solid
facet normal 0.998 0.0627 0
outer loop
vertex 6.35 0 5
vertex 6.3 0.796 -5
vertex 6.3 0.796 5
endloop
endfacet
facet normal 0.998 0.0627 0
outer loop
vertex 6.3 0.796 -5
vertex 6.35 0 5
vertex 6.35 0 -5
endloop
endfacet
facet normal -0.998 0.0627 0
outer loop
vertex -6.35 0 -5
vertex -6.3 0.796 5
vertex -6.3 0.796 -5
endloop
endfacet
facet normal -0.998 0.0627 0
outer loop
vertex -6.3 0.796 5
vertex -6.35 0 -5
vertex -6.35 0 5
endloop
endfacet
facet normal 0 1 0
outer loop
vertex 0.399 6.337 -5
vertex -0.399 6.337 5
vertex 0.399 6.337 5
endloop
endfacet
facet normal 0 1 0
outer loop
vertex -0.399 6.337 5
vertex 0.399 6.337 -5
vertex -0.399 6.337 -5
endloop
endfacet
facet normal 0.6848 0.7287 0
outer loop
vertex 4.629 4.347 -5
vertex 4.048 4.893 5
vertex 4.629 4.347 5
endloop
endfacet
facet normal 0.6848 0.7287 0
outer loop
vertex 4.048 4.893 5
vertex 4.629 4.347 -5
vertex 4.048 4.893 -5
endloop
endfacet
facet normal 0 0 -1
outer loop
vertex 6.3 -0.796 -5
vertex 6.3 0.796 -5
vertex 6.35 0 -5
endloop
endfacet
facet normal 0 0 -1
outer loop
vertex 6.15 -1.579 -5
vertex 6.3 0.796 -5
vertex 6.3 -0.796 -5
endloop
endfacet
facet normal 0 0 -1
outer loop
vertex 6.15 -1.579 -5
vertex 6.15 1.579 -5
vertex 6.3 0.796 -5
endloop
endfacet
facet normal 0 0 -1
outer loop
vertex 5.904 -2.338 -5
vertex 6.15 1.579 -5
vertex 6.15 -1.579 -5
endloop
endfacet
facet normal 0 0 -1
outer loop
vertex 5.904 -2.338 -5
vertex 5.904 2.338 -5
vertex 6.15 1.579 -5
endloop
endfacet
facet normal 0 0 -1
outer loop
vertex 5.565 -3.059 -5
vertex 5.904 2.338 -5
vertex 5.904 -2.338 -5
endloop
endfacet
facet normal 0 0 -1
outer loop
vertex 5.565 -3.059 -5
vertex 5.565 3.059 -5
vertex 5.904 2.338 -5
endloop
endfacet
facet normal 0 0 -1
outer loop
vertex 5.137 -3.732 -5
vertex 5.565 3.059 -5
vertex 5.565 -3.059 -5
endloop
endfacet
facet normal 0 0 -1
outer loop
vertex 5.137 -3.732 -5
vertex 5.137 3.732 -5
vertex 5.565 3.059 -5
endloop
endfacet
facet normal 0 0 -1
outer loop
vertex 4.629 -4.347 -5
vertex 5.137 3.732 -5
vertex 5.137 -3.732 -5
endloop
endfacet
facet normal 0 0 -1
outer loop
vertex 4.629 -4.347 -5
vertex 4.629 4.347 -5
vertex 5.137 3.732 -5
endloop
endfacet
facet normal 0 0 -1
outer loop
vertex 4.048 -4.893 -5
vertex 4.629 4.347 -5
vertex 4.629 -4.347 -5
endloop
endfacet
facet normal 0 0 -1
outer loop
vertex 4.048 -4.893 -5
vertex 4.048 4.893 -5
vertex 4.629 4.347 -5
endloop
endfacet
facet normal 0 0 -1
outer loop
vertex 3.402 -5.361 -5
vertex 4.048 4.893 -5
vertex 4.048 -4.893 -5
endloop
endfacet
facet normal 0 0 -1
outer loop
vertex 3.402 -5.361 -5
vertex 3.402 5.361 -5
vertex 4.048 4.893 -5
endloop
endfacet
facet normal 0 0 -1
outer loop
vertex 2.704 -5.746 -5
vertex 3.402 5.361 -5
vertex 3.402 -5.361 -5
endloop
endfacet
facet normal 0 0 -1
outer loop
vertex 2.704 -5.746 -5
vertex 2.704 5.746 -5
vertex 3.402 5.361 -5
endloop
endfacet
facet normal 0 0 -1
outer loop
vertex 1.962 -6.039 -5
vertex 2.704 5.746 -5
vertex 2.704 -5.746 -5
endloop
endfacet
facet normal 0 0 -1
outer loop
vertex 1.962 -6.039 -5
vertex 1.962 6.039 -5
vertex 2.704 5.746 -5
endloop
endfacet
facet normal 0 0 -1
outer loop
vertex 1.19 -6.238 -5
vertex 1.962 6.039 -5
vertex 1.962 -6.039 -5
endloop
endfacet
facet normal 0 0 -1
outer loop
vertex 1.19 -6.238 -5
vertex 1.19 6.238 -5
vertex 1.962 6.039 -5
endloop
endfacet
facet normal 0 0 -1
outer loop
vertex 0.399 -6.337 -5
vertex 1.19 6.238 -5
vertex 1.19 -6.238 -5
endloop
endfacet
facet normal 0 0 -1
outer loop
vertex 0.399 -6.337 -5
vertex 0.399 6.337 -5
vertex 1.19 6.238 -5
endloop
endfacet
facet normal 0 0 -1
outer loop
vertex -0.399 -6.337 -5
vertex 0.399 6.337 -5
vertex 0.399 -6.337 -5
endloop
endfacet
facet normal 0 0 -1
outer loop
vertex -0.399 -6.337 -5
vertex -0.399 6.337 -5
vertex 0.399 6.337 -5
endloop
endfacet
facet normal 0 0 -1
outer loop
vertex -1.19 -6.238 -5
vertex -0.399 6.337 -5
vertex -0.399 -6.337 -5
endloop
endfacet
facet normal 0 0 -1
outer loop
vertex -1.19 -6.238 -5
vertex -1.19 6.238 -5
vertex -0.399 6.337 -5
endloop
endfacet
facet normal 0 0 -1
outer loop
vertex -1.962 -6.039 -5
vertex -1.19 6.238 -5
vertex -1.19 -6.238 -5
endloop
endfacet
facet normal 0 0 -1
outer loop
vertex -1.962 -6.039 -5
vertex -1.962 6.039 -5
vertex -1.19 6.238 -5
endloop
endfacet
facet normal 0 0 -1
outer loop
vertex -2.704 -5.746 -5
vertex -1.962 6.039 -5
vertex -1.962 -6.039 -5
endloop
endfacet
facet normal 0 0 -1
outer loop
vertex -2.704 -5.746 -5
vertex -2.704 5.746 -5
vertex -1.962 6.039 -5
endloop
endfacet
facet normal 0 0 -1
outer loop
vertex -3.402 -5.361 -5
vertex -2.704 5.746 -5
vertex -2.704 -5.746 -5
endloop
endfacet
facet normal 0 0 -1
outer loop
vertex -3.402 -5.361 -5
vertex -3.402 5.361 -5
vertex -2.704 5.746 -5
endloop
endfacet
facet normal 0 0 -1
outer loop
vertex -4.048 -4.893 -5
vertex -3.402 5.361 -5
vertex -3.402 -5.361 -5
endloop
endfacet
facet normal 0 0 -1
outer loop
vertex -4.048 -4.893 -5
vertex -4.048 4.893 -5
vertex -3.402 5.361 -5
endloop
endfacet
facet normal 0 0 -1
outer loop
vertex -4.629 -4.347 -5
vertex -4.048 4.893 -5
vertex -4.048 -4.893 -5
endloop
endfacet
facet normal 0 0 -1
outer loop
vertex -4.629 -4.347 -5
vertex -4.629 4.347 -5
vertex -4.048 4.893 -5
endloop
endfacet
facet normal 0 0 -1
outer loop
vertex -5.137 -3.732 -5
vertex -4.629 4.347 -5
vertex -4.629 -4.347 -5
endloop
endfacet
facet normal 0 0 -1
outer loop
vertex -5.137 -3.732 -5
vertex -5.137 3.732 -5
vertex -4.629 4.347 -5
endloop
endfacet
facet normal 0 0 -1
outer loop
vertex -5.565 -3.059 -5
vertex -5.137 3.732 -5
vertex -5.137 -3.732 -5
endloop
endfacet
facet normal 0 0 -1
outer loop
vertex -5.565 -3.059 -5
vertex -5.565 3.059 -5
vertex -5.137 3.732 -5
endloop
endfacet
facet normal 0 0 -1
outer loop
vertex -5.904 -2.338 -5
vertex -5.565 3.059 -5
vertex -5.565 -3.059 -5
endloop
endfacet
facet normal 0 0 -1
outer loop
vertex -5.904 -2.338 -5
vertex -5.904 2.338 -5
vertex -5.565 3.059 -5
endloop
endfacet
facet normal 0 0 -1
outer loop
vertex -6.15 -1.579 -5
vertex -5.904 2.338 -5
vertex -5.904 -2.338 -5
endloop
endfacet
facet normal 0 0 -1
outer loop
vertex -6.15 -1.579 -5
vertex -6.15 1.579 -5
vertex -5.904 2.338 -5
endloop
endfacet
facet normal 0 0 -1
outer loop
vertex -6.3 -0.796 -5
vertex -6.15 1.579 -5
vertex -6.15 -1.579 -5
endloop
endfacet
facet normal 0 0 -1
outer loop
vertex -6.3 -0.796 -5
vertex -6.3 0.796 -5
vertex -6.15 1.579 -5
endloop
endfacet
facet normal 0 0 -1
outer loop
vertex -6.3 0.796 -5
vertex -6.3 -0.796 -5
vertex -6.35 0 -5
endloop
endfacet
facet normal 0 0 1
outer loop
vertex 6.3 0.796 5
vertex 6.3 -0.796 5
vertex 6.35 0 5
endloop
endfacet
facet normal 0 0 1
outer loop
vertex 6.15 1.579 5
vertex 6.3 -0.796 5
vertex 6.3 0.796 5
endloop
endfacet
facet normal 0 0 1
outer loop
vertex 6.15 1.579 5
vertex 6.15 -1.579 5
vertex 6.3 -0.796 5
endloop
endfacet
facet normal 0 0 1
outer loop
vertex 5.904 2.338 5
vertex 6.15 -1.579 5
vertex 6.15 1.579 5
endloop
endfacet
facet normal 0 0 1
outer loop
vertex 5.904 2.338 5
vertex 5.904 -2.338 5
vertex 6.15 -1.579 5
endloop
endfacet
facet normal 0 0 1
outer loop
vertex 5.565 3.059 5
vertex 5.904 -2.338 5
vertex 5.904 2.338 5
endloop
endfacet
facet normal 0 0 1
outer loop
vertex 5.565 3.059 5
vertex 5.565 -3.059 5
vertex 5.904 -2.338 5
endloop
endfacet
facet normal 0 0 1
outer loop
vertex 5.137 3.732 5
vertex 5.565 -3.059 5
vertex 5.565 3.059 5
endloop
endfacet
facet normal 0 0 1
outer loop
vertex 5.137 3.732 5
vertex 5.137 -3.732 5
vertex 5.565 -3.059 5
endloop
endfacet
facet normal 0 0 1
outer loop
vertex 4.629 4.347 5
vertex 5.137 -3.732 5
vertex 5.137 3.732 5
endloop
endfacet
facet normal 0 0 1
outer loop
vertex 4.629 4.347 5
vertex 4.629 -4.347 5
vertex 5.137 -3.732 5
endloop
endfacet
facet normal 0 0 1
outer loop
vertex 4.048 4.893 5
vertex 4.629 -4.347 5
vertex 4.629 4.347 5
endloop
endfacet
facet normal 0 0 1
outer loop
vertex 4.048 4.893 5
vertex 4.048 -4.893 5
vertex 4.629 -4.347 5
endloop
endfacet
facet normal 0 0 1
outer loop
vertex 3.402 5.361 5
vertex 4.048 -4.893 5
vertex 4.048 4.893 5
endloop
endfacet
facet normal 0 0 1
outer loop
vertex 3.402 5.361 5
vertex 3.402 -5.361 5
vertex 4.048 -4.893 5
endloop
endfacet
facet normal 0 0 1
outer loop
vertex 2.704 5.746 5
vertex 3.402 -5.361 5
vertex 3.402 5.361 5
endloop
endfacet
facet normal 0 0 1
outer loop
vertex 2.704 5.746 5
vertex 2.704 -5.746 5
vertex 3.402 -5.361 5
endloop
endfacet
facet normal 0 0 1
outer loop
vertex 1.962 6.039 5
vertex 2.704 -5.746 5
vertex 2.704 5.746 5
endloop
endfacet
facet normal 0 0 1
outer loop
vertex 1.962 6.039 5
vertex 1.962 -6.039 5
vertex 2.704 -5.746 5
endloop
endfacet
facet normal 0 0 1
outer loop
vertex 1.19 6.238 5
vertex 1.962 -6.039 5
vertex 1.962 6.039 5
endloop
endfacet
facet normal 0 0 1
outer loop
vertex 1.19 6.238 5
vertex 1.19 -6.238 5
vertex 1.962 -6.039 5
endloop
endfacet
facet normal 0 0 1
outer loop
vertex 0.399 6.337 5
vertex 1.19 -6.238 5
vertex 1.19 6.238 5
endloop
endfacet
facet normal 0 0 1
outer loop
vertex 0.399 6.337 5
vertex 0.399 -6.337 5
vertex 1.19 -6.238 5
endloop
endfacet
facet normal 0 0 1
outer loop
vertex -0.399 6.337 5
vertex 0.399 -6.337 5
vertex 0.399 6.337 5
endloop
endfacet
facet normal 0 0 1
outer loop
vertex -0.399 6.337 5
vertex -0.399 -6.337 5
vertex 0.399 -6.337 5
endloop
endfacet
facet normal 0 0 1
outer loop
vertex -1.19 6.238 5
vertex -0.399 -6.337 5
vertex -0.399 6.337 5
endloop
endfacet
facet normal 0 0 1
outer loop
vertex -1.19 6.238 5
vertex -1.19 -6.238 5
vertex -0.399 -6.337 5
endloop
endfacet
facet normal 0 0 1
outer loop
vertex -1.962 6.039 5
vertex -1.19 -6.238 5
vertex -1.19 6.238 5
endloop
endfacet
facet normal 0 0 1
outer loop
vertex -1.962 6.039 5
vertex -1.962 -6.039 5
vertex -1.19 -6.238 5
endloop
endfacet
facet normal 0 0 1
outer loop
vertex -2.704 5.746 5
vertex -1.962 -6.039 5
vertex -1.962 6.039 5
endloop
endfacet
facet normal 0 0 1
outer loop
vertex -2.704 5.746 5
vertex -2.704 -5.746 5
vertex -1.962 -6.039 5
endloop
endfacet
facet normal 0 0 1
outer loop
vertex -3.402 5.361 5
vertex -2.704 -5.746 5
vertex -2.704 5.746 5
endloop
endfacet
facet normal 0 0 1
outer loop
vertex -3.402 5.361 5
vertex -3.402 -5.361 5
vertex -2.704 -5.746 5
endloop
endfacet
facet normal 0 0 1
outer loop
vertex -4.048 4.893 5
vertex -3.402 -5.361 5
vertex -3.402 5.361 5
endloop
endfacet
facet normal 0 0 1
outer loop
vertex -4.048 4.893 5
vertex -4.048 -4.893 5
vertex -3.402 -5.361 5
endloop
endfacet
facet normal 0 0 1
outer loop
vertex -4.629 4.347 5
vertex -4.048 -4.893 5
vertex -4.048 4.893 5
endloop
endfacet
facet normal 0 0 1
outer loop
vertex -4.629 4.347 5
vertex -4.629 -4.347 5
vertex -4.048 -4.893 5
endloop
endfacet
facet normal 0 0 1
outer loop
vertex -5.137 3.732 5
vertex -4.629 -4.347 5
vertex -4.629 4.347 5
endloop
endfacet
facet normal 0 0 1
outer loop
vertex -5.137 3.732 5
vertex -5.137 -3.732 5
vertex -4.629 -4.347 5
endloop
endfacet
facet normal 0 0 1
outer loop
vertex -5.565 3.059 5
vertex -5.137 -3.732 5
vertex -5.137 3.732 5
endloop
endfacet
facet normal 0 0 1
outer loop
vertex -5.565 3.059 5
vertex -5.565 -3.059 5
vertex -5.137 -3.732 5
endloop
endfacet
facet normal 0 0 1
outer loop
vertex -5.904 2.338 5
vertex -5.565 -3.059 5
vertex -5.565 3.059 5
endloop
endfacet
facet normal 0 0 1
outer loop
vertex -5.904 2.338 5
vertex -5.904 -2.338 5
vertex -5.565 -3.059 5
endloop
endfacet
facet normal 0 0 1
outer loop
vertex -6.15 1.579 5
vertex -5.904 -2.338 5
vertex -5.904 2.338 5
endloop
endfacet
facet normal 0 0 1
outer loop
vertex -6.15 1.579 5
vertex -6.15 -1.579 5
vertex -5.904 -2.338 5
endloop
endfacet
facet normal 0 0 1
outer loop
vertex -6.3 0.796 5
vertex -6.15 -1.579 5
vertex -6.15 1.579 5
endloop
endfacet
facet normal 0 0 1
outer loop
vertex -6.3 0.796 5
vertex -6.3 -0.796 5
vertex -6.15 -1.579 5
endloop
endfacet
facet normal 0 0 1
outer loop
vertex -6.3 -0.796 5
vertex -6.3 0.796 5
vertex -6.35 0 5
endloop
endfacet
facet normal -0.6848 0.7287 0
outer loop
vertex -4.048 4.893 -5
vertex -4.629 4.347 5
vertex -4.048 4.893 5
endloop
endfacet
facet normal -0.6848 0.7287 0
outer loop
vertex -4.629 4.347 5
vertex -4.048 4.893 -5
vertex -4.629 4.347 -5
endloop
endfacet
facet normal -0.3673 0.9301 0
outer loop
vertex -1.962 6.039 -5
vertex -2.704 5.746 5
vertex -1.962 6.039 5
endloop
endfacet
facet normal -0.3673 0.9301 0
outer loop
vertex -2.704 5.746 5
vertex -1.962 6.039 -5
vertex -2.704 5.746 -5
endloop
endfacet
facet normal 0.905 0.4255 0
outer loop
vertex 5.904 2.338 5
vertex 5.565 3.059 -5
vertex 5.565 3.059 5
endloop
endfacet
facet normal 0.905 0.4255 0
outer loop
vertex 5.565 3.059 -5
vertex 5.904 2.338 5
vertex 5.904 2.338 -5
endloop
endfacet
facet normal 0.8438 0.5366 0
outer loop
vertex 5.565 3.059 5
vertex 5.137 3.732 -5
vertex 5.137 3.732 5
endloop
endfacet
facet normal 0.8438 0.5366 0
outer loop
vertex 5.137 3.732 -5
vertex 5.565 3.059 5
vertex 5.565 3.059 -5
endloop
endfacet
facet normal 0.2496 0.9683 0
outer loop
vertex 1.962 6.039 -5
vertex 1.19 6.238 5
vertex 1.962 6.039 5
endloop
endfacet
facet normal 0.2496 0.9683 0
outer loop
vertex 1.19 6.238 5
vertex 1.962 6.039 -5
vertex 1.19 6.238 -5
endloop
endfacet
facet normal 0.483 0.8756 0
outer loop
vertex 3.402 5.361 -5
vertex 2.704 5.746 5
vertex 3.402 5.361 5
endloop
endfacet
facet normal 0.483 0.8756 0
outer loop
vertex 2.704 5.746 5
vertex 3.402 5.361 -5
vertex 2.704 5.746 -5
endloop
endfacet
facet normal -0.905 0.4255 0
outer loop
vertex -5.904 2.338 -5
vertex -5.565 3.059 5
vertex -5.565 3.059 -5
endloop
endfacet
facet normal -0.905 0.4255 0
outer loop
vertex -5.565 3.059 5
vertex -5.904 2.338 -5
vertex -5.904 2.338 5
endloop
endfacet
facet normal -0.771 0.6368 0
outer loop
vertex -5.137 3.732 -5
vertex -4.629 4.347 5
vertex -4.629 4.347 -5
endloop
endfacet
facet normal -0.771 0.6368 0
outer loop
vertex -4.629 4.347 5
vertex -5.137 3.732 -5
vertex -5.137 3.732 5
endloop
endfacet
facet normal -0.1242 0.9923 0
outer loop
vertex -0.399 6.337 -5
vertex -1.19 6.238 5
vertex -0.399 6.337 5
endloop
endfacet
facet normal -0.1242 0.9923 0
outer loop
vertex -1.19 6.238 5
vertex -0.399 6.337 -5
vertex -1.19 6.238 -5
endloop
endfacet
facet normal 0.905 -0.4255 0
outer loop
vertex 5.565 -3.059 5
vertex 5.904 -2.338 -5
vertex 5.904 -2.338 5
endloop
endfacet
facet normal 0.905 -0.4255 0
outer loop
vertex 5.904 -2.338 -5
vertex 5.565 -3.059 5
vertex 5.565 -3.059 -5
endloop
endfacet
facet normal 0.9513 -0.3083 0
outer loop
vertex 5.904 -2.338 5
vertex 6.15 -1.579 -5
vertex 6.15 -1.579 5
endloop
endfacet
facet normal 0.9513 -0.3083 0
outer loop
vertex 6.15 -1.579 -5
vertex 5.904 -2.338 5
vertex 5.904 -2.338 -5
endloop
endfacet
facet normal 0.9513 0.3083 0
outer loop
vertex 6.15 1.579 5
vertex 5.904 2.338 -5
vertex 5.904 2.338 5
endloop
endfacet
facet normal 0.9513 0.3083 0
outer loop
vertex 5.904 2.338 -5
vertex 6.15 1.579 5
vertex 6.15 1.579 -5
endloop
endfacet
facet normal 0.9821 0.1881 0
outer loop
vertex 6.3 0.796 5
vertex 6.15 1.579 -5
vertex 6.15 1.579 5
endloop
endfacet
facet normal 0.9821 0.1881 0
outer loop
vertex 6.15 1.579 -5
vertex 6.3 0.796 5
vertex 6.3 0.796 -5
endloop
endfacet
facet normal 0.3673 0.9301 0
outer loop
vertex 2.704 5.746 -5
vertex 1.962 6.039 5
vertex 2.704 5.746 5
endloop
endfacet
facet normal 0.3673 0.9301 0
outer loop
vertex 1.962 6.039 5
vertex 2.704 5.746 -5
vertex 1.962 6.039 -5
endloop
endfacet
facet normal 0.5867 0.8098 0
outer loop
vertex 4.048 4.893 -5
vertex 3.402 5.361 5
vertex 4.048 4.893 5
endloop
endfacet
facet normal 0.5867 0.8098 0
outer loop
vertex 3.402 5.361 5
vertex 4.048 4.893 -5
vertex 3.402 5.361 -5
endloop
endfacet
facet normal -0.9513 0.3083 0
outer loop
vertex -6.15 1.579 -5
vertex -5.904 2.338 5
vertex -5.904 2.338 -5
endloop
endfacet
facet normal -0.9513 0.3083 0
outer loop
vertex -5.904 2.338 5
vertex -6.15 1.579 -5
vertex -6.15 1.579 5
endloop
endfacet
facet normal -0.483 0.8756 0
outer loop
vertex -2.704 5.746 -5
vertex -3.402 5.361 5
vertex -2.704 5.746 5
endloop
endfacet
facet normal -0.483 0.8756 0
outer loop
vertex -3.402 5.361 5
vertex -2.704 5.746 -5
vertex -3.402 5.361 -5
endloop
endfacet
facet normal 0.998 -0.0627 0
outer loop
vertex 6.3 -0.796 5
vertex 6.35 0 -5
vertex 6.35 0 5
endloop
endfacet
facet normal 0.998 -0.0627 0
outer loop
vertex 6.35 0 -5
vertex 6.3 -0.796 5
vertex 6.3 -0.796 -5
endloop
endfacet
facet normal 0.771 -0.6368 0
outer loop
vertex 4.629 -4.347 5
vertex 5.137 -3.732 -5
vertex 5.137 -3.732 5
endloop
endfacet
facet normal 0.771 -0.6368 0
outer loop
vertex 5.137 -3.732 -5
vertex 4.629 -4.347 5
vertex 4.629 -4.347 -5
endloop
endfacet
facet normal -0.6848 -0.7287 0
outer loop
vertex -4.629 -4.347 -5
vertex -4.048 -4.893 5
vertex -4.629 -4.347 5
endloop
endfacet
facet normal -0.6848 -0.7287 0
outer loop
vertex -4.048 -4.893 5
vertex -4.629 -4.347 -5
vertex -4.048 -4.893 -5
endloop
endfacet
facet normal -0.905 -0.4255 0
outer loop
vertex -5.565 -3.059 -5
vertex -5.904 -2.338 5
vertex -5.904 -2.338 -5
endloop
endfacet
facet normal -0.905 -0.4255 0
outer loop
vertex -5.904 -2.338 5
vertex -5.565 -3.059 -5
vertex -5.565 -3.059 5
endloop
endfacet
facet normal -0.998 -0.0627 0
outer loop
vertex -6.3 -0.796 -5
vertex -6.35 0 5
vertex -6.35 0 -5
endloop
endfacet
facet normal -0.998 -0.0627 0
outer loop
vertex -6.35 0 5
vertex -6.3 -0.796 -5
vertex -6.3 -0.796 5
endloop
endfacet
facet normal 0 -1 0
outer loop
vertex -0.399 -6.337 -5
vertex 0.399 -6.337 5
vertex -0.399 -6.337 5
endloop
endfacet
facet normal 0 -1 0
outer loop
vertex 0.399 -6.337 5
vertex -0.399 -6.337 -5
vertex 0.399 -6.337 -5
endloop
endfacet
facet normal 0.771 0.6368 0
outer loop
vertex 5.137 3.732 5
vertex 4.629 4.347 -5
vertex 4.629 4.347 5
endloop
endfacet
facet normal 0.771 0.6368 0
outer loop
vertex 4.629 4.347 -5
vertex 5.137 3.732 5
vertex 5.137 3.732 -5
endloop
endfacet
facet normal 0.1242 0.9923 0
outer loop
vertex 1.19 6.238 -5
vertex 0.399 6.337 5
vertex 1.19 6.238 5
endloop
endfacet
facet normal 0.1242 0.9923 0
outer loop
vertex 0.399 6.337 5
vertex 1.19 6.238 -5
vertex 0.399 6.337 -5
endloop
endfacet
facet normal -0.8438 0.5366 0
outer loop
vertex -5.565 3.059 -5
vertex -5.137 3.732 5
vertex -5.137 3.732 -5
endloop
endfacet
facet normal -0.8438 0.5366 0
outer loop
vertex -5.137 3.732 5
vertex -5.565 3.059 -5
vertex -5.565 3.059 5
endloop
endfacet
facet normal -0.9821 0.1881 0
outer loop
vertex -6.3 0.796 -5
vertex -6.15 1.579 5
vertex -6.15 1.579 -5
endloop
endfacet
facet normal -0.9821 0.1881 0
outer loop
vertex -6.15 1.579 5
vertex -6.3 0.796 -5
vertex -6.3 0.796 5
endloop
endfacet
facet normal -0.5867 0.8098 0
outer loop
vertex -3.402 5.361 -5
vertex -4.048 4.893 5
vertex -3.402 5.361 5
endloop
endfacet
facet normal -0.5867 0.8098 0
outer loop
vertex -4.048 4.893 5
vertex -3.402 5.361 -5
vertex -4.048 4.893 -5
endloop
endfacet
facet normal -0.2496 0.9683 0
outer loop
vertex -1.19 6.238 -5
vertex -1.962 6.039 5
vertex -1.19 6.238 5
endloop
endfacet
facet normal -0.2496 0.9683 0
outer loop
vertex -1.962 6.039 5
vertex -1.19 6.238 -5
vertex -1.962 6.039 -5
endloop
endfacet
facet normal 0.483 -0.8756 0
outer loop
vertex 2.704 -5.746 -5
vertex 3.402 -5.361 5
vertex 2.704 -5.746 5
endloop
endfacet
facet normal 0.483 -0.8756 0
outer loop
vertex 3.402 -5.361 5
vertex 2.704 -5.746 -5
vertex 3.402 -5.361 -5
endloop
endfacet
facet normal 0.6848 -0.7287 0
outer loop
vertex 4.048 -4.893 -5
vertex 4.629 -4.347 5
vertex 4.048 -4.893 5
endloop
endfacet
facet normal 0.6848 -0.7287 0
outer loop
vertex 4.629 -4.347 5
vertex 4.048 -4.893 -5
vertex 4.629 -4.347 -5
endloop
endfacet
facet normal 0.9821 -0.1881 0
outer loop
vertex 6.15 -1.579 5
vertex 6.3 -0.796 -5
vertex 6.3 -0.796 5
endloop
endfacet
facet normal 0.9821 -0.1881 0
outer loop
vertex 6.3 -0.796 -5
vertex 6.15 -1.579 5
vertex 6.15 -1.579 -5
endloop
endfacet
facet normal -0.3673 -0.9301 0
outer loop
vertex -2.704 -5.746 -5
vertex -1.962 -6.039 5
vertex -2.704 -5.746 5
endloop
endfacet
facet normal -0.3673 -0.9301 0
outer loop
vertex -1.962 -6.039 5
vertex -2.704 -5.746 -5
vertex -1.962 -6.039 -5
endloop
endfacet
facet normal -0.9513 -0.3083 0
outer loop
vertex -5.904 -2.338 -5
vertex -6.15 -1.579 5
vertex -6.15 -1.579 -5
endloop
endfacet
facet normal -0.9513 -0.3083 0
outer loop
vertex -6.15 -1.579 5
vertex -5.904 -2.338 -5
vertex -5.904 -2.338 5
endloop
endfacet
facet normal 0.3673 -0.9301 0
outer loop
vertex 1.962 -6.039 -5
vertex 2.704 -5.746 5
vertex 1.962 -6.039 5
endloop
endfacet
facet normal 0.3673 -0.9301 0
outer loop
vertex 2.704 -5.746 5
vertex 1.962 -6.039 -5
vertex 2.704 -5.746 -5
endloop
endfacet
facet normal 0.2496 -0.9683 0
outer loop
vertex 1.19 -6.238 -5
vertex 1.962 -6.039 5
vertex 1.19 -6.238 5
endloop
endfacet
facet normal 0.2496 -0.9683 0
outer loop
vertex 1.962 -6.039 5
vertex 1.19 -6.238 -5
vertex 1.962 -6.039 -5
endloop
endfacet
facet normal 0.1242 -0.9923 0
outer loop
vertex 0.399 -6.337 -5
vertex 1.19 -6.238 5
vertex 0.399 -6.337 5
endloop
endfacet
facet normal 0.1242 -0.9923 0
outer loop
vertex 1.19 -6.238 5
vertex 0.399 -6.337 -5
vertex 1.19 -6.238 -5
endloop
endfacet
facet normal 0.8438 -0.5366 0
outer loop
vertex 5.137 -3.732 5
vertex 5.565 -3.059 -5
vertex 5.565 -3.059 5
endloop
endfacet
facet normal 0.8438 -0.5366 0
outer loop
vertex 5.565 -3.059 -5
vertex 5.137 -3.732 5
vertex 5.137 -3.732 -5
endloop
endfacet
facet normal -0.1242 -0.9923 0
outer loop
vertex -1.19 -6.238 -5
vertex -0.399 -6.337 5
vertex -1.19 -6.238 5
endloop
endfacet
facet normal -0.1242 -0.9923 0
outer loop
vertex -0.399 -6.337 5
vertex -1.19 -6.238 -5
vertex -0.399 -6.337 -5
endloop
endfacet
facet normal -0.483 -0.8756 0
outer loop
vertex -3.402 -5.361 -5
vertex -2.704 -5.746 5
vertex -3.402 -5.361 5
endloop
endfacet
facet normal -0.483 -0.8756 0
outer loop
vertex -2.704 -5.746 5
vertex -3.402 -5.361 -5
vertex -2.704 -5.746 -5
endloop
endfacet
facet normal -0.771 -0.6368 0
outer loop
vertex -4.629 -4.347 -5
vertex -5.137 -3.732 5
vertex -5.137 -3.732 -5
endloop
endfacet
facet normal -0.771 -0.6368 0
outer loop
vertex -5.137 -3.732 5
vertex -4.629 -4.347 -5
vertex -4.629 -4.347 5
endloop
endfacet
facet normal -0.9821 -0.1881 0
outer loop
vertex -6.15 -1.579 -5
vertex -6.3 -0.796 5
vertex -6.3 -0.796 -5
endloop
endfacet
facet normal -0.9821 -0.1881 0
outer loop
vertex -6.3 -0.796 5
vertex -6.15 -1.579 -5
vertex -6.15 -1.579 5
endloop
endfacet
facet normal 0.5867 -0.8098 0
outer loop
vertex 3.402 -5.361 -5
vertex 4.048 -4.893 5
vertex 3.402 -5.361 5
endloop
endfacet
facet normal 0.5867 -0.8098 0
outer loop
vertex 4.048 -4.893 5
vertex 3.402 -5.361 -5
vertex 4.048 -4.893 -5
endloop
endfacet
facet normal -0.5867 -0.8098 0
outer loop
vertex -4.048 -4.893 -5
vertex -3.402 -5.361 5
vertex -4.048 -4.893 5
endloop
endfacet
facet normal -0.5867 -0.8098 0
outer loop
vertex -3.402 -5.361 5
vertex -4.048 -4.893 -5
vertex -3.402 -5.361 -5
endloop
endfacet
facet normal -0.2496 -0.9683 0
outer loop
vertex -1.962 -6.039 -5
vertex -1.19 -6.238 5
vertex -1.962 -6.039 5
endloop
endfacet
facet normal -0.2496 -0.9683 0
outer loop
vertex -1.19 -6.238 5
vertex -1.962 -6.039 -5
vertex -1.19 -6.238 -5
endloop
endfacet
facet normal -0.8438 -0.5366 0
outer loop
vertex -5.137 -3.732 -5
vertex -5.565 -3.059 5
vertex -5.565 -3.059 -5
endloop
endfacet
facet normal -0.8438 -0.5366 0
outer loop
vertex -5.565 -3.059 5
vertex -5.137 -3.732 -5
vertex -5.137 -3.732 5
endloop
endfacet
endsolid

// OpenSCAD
$fn = 50;


difference() {
	union() {
		translate(v = [0, 0, -5.0000000000]) {
			cylinder(h = 10, r = 6.3500000000);
		}
	}
	union() {
		translate(v = [0, 0, -100.0000000000]) {
			cylinder(h = 200, r = 0);
		}
	}
}
